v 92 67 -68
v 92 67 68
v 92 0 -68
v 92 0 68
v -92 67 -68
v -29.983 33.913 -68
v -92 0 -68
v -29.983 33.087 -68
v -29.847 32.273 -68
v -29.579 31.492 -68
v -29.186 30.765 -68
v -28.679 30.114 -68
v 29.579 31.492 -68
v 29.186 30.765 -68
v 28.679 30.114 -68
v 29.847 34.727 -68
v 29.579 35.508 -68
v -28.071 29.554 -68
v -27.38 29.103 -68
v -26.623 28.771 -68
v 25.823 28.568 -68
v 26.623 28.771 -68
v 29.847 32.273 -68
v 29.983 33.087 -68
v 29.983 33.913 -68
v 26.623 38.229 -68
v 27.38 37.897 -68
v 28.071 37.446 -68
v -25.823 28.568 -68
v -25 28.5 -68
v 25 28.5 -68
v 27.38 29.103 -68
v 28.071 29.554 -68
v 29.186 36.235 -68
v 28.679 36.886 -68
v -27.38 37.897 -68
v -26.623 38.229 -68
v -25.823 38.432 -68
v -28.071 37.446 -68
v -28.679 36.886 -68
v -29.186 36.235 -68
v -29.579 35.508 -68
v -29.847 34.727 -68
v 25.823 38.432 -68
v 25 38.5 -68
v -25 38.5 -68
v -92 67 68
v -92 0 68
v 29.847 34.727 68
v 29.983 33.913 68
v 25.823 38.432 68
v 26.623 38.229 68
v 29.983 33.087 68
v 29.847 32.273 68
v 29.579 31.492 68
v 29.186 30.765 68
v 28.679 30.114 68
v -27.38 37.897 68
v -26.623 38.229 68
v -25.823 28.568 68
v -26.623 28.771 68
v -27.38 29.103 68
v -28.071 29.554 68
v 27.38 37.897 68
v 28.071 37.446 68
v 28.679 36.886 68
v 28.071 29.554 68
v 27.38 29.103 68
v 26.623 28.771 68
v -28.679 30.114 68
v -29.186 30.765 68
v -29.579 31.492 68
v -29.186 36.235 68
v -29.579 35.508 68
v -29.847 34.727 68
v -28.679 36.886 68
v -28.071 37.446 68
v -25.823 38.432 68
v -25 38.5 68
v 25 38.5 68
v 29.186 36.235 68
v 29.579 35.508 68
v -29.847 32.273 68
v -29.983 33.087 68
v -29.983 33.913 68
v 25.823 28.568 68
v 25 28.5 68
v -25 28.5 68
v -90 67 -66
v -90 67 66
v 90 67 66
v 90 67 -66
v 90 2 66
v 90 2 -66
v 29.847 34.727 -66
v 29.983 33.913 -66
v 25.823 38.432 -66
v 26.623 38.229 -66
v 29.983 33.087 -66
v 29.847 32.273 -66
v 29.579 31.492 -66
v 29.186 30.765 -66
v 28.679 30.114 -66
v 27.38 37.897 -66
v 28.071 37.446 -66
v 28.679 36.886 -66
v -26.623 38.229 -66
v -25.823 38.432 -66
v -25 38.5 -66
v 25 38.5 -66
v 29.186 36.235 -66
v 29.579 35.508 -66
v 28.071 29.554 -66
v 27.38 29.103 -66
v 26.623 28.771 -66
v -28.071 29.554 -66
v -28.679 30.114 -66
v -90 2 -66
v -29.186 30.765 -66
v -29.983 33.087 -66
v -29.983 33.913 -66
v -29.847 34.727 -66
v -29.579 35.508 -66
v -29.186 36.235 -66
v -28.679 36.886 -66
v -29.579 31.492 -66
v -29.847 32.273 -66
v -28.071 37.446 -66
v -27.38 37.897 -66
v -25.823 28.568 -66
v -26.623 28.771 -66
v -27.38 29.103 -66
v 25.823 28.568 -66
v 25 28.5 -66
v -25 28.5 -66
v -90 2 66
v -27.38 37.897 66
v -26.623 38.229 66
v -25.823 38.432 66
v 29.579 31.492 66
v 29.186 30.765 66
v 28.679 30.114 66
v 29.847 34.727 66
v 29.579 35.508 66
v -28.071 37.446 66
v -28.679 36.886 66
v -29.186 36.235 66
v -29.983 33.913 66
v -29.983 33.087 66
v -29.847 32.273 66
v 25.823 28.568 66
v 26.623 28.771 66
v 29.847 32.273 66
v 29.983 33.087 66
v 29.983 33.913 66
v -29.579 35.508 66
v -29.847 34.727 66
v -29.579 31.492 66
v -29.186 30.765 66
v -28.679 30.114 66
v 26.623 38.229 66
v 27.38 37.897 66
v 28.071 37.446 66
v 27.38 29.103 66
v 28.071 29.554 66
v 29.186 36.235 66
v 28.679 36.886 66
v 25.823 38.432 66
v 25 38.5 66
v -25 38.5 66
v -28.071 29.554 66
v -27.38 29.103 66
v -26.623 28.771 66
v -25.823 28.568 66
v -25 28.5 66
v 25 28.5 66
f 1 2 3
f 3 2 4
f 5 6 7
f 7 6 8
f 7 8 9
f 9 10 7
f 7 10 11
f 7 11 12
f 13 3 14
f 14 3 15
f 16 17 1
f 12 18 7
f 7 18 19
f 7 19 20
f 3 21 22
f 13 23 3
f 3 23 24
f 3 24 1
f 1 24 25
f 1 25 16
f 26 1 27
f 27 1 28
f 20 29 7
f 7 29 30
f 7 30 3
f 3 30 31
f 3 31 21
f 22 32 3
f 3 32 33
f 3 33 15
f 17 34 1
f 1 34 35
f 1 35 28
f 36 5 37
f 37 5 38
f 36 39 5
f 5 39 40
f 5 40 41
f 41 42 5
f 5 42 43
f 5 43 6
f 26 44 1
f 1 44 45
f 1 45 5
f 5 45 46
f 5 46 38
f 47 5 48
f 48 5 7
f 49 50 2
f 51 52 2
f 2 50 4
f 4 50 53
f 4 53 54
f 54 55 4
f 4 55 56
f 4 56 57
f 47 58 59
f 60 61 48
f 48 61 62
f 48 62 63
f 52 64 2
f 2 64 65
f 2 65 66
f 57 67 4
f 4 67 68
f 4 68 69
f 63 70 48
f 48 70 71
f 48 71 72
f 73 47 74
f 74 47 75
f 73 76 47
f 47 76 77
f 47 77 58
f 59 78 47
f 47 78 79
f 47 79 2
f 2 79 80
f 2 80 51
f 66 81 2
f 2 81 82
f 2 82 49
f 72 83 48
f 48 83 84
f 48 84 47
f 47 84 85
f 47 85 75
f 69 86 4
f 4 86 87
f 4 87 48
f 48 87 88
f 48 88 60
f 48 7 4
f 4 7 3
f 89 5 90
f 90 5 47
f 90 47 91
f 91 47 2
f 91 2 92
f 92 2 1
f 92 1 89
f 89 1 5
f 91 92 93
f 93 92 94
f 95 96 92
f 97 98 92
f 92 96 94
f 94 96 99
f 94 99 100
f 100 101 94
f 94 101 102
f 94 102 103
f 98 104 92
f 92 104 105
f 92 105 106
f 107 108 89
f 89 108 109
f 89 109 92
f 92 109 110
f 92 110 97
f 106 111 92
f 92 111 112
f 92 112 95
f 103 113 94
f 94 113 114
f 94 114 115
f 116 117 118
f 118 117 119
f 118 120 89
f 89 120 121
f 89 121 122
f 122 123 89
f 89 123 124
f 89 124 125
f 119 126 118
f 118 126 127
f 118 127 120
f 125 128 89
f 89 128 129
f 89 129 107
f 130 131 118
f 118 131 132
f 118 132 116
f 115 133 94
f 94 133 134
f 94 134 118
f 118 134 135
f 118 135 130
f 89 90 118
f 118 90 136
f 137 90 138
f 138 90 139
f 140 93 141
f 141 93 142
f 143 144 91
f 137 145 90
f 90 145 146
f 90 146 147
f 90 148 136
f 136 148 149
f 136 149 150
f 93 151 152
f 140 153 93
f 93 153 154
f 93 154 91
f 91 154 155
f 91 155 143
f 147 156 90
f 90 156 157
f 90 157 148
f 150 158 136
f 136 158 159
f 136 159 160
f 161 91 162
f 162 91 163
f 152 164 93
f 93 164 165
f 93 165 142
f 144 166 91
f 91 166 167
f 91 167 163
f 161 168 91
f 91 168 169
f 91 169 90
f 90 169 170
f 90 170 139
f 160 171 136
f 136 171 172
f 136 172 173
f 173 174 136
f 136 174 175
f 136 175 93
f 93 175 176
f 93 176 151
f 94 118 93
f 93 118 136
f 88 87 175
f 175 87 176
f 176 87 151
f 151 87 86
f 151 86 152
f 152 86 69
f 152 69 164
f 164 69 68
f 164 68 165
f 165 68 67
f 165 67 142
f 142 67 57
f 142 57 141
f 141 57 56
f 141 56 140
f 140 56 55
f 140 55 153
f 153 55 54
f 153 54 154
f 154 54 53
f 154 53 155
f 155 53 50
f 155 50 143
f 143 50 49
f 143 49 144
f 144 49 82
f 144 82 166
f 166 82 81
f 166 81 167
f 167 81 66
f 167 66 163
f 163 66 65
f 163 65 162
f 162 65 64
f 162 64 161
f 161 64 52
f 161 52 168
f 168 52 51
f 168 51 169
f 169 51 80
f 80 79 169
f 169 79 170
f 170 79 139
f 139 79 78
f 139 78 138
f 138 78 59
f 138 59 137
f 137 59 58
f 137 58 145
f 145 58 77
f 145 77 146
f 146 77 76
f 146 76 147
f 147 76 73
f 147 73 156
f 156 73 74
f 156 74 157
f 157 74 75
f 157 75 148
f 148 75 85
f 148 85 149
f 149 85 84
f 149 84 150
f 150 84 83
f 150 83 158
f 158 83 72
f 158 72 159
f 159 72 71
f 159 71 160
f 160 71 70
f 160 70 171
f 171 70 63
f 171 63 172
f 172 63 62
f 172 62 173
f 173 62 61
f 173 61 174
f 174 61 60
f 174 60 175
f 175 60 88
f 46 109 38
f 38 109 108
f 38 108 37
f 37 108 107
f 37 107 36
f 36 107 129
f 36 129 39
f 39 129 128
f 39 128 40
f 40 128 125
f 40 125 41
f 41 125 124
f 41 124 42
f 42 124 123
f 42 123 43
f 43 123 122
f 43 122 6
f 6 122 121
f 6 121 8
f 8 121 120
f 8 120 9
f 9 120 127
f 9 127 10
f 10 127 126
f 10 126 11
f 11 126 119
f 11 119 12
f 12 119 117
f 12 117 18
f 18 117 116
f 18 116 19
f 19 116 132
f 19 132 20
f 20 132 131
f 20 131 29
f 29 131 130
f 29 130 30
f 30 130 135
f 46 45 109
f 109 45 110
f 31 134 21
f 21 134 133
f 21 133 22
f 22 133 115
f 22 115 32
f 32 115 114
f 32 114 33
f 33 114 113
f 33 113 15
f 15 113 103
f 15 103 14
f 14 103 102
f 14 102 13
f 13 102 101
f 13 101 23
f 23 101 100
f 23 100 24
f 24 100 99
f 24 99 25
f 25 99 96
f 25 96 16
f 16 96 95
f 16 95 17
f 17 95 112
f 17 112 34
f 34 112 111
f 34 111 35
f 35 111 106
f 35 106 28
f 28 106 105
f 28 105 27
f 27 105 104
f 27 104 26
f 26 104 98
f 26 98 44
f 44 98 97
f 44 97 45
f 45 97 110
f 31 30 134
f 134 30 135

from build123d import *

# Parameters (mm, degrees)
ESBO_O1_W                = 184
ESBO_O1_H                = 136
RESSALTO_EXTRUS_O1_DEPTH = 2
ESBO_O2_W                = 184
ESBO_O2_H                = 136
ESBO_O2_W_2              = 180
ESBO_O2_H_2              = 132
EXTRUS_O_FINA1_DEPTH     = 65
CORTE_EXTRUS_O1_DEPTH    = 178.338659068


with BuildPart() as part:
    # Esboço1 → Ressalto-extrusão1 (new body)
    with BuildSketch(Plane(origin=(0, 0, 0), x_dir=(1, 0, 0), z_dir=(0, 1, 0))):
        Rectangle(ESBO_O1_W, ESBO_O1_H)
    extrude(amount=RESSALTO_EXTRUS_O1_DEPTH)

    # Esboço2 → Extrusão-Fina1 (add)
    with BuildSketch(Plane(origin=(0, 2, 0), x_dir=(1, 0, 0), z_dir=(0, 1, 0))):
        Rectangle(ESBO_O2_W, ESBO_O2_H)
        Rectangle(ESBO_O2_W_2, ESBO_O2_H_2, mode=Mode.SUBTRACT)
    extrude(amount=EXTRUS_O_FINA1_DEPTH)

    # Esboço3 → Corte-extrusão1 (cut, through all)
    with BuildSketch(Plane.XY.offset(68)):
        with BuildLine():
            Line((-25, 38.5), (25, 38.5))
            ThreePointArc((25, 38.5), (30, 33.5), (25, 28.5))
            Line((25, 28.5), (-25, 28.5))
            ThreePointArc((-25, 28.5), (-30, 33.5), (-25, 38.5))
        make_face()
    extrude(amount=-CORTE_EXTRUS_O1_DEPTH, mode=Mode.SUBTRACT)


solid = part.part
